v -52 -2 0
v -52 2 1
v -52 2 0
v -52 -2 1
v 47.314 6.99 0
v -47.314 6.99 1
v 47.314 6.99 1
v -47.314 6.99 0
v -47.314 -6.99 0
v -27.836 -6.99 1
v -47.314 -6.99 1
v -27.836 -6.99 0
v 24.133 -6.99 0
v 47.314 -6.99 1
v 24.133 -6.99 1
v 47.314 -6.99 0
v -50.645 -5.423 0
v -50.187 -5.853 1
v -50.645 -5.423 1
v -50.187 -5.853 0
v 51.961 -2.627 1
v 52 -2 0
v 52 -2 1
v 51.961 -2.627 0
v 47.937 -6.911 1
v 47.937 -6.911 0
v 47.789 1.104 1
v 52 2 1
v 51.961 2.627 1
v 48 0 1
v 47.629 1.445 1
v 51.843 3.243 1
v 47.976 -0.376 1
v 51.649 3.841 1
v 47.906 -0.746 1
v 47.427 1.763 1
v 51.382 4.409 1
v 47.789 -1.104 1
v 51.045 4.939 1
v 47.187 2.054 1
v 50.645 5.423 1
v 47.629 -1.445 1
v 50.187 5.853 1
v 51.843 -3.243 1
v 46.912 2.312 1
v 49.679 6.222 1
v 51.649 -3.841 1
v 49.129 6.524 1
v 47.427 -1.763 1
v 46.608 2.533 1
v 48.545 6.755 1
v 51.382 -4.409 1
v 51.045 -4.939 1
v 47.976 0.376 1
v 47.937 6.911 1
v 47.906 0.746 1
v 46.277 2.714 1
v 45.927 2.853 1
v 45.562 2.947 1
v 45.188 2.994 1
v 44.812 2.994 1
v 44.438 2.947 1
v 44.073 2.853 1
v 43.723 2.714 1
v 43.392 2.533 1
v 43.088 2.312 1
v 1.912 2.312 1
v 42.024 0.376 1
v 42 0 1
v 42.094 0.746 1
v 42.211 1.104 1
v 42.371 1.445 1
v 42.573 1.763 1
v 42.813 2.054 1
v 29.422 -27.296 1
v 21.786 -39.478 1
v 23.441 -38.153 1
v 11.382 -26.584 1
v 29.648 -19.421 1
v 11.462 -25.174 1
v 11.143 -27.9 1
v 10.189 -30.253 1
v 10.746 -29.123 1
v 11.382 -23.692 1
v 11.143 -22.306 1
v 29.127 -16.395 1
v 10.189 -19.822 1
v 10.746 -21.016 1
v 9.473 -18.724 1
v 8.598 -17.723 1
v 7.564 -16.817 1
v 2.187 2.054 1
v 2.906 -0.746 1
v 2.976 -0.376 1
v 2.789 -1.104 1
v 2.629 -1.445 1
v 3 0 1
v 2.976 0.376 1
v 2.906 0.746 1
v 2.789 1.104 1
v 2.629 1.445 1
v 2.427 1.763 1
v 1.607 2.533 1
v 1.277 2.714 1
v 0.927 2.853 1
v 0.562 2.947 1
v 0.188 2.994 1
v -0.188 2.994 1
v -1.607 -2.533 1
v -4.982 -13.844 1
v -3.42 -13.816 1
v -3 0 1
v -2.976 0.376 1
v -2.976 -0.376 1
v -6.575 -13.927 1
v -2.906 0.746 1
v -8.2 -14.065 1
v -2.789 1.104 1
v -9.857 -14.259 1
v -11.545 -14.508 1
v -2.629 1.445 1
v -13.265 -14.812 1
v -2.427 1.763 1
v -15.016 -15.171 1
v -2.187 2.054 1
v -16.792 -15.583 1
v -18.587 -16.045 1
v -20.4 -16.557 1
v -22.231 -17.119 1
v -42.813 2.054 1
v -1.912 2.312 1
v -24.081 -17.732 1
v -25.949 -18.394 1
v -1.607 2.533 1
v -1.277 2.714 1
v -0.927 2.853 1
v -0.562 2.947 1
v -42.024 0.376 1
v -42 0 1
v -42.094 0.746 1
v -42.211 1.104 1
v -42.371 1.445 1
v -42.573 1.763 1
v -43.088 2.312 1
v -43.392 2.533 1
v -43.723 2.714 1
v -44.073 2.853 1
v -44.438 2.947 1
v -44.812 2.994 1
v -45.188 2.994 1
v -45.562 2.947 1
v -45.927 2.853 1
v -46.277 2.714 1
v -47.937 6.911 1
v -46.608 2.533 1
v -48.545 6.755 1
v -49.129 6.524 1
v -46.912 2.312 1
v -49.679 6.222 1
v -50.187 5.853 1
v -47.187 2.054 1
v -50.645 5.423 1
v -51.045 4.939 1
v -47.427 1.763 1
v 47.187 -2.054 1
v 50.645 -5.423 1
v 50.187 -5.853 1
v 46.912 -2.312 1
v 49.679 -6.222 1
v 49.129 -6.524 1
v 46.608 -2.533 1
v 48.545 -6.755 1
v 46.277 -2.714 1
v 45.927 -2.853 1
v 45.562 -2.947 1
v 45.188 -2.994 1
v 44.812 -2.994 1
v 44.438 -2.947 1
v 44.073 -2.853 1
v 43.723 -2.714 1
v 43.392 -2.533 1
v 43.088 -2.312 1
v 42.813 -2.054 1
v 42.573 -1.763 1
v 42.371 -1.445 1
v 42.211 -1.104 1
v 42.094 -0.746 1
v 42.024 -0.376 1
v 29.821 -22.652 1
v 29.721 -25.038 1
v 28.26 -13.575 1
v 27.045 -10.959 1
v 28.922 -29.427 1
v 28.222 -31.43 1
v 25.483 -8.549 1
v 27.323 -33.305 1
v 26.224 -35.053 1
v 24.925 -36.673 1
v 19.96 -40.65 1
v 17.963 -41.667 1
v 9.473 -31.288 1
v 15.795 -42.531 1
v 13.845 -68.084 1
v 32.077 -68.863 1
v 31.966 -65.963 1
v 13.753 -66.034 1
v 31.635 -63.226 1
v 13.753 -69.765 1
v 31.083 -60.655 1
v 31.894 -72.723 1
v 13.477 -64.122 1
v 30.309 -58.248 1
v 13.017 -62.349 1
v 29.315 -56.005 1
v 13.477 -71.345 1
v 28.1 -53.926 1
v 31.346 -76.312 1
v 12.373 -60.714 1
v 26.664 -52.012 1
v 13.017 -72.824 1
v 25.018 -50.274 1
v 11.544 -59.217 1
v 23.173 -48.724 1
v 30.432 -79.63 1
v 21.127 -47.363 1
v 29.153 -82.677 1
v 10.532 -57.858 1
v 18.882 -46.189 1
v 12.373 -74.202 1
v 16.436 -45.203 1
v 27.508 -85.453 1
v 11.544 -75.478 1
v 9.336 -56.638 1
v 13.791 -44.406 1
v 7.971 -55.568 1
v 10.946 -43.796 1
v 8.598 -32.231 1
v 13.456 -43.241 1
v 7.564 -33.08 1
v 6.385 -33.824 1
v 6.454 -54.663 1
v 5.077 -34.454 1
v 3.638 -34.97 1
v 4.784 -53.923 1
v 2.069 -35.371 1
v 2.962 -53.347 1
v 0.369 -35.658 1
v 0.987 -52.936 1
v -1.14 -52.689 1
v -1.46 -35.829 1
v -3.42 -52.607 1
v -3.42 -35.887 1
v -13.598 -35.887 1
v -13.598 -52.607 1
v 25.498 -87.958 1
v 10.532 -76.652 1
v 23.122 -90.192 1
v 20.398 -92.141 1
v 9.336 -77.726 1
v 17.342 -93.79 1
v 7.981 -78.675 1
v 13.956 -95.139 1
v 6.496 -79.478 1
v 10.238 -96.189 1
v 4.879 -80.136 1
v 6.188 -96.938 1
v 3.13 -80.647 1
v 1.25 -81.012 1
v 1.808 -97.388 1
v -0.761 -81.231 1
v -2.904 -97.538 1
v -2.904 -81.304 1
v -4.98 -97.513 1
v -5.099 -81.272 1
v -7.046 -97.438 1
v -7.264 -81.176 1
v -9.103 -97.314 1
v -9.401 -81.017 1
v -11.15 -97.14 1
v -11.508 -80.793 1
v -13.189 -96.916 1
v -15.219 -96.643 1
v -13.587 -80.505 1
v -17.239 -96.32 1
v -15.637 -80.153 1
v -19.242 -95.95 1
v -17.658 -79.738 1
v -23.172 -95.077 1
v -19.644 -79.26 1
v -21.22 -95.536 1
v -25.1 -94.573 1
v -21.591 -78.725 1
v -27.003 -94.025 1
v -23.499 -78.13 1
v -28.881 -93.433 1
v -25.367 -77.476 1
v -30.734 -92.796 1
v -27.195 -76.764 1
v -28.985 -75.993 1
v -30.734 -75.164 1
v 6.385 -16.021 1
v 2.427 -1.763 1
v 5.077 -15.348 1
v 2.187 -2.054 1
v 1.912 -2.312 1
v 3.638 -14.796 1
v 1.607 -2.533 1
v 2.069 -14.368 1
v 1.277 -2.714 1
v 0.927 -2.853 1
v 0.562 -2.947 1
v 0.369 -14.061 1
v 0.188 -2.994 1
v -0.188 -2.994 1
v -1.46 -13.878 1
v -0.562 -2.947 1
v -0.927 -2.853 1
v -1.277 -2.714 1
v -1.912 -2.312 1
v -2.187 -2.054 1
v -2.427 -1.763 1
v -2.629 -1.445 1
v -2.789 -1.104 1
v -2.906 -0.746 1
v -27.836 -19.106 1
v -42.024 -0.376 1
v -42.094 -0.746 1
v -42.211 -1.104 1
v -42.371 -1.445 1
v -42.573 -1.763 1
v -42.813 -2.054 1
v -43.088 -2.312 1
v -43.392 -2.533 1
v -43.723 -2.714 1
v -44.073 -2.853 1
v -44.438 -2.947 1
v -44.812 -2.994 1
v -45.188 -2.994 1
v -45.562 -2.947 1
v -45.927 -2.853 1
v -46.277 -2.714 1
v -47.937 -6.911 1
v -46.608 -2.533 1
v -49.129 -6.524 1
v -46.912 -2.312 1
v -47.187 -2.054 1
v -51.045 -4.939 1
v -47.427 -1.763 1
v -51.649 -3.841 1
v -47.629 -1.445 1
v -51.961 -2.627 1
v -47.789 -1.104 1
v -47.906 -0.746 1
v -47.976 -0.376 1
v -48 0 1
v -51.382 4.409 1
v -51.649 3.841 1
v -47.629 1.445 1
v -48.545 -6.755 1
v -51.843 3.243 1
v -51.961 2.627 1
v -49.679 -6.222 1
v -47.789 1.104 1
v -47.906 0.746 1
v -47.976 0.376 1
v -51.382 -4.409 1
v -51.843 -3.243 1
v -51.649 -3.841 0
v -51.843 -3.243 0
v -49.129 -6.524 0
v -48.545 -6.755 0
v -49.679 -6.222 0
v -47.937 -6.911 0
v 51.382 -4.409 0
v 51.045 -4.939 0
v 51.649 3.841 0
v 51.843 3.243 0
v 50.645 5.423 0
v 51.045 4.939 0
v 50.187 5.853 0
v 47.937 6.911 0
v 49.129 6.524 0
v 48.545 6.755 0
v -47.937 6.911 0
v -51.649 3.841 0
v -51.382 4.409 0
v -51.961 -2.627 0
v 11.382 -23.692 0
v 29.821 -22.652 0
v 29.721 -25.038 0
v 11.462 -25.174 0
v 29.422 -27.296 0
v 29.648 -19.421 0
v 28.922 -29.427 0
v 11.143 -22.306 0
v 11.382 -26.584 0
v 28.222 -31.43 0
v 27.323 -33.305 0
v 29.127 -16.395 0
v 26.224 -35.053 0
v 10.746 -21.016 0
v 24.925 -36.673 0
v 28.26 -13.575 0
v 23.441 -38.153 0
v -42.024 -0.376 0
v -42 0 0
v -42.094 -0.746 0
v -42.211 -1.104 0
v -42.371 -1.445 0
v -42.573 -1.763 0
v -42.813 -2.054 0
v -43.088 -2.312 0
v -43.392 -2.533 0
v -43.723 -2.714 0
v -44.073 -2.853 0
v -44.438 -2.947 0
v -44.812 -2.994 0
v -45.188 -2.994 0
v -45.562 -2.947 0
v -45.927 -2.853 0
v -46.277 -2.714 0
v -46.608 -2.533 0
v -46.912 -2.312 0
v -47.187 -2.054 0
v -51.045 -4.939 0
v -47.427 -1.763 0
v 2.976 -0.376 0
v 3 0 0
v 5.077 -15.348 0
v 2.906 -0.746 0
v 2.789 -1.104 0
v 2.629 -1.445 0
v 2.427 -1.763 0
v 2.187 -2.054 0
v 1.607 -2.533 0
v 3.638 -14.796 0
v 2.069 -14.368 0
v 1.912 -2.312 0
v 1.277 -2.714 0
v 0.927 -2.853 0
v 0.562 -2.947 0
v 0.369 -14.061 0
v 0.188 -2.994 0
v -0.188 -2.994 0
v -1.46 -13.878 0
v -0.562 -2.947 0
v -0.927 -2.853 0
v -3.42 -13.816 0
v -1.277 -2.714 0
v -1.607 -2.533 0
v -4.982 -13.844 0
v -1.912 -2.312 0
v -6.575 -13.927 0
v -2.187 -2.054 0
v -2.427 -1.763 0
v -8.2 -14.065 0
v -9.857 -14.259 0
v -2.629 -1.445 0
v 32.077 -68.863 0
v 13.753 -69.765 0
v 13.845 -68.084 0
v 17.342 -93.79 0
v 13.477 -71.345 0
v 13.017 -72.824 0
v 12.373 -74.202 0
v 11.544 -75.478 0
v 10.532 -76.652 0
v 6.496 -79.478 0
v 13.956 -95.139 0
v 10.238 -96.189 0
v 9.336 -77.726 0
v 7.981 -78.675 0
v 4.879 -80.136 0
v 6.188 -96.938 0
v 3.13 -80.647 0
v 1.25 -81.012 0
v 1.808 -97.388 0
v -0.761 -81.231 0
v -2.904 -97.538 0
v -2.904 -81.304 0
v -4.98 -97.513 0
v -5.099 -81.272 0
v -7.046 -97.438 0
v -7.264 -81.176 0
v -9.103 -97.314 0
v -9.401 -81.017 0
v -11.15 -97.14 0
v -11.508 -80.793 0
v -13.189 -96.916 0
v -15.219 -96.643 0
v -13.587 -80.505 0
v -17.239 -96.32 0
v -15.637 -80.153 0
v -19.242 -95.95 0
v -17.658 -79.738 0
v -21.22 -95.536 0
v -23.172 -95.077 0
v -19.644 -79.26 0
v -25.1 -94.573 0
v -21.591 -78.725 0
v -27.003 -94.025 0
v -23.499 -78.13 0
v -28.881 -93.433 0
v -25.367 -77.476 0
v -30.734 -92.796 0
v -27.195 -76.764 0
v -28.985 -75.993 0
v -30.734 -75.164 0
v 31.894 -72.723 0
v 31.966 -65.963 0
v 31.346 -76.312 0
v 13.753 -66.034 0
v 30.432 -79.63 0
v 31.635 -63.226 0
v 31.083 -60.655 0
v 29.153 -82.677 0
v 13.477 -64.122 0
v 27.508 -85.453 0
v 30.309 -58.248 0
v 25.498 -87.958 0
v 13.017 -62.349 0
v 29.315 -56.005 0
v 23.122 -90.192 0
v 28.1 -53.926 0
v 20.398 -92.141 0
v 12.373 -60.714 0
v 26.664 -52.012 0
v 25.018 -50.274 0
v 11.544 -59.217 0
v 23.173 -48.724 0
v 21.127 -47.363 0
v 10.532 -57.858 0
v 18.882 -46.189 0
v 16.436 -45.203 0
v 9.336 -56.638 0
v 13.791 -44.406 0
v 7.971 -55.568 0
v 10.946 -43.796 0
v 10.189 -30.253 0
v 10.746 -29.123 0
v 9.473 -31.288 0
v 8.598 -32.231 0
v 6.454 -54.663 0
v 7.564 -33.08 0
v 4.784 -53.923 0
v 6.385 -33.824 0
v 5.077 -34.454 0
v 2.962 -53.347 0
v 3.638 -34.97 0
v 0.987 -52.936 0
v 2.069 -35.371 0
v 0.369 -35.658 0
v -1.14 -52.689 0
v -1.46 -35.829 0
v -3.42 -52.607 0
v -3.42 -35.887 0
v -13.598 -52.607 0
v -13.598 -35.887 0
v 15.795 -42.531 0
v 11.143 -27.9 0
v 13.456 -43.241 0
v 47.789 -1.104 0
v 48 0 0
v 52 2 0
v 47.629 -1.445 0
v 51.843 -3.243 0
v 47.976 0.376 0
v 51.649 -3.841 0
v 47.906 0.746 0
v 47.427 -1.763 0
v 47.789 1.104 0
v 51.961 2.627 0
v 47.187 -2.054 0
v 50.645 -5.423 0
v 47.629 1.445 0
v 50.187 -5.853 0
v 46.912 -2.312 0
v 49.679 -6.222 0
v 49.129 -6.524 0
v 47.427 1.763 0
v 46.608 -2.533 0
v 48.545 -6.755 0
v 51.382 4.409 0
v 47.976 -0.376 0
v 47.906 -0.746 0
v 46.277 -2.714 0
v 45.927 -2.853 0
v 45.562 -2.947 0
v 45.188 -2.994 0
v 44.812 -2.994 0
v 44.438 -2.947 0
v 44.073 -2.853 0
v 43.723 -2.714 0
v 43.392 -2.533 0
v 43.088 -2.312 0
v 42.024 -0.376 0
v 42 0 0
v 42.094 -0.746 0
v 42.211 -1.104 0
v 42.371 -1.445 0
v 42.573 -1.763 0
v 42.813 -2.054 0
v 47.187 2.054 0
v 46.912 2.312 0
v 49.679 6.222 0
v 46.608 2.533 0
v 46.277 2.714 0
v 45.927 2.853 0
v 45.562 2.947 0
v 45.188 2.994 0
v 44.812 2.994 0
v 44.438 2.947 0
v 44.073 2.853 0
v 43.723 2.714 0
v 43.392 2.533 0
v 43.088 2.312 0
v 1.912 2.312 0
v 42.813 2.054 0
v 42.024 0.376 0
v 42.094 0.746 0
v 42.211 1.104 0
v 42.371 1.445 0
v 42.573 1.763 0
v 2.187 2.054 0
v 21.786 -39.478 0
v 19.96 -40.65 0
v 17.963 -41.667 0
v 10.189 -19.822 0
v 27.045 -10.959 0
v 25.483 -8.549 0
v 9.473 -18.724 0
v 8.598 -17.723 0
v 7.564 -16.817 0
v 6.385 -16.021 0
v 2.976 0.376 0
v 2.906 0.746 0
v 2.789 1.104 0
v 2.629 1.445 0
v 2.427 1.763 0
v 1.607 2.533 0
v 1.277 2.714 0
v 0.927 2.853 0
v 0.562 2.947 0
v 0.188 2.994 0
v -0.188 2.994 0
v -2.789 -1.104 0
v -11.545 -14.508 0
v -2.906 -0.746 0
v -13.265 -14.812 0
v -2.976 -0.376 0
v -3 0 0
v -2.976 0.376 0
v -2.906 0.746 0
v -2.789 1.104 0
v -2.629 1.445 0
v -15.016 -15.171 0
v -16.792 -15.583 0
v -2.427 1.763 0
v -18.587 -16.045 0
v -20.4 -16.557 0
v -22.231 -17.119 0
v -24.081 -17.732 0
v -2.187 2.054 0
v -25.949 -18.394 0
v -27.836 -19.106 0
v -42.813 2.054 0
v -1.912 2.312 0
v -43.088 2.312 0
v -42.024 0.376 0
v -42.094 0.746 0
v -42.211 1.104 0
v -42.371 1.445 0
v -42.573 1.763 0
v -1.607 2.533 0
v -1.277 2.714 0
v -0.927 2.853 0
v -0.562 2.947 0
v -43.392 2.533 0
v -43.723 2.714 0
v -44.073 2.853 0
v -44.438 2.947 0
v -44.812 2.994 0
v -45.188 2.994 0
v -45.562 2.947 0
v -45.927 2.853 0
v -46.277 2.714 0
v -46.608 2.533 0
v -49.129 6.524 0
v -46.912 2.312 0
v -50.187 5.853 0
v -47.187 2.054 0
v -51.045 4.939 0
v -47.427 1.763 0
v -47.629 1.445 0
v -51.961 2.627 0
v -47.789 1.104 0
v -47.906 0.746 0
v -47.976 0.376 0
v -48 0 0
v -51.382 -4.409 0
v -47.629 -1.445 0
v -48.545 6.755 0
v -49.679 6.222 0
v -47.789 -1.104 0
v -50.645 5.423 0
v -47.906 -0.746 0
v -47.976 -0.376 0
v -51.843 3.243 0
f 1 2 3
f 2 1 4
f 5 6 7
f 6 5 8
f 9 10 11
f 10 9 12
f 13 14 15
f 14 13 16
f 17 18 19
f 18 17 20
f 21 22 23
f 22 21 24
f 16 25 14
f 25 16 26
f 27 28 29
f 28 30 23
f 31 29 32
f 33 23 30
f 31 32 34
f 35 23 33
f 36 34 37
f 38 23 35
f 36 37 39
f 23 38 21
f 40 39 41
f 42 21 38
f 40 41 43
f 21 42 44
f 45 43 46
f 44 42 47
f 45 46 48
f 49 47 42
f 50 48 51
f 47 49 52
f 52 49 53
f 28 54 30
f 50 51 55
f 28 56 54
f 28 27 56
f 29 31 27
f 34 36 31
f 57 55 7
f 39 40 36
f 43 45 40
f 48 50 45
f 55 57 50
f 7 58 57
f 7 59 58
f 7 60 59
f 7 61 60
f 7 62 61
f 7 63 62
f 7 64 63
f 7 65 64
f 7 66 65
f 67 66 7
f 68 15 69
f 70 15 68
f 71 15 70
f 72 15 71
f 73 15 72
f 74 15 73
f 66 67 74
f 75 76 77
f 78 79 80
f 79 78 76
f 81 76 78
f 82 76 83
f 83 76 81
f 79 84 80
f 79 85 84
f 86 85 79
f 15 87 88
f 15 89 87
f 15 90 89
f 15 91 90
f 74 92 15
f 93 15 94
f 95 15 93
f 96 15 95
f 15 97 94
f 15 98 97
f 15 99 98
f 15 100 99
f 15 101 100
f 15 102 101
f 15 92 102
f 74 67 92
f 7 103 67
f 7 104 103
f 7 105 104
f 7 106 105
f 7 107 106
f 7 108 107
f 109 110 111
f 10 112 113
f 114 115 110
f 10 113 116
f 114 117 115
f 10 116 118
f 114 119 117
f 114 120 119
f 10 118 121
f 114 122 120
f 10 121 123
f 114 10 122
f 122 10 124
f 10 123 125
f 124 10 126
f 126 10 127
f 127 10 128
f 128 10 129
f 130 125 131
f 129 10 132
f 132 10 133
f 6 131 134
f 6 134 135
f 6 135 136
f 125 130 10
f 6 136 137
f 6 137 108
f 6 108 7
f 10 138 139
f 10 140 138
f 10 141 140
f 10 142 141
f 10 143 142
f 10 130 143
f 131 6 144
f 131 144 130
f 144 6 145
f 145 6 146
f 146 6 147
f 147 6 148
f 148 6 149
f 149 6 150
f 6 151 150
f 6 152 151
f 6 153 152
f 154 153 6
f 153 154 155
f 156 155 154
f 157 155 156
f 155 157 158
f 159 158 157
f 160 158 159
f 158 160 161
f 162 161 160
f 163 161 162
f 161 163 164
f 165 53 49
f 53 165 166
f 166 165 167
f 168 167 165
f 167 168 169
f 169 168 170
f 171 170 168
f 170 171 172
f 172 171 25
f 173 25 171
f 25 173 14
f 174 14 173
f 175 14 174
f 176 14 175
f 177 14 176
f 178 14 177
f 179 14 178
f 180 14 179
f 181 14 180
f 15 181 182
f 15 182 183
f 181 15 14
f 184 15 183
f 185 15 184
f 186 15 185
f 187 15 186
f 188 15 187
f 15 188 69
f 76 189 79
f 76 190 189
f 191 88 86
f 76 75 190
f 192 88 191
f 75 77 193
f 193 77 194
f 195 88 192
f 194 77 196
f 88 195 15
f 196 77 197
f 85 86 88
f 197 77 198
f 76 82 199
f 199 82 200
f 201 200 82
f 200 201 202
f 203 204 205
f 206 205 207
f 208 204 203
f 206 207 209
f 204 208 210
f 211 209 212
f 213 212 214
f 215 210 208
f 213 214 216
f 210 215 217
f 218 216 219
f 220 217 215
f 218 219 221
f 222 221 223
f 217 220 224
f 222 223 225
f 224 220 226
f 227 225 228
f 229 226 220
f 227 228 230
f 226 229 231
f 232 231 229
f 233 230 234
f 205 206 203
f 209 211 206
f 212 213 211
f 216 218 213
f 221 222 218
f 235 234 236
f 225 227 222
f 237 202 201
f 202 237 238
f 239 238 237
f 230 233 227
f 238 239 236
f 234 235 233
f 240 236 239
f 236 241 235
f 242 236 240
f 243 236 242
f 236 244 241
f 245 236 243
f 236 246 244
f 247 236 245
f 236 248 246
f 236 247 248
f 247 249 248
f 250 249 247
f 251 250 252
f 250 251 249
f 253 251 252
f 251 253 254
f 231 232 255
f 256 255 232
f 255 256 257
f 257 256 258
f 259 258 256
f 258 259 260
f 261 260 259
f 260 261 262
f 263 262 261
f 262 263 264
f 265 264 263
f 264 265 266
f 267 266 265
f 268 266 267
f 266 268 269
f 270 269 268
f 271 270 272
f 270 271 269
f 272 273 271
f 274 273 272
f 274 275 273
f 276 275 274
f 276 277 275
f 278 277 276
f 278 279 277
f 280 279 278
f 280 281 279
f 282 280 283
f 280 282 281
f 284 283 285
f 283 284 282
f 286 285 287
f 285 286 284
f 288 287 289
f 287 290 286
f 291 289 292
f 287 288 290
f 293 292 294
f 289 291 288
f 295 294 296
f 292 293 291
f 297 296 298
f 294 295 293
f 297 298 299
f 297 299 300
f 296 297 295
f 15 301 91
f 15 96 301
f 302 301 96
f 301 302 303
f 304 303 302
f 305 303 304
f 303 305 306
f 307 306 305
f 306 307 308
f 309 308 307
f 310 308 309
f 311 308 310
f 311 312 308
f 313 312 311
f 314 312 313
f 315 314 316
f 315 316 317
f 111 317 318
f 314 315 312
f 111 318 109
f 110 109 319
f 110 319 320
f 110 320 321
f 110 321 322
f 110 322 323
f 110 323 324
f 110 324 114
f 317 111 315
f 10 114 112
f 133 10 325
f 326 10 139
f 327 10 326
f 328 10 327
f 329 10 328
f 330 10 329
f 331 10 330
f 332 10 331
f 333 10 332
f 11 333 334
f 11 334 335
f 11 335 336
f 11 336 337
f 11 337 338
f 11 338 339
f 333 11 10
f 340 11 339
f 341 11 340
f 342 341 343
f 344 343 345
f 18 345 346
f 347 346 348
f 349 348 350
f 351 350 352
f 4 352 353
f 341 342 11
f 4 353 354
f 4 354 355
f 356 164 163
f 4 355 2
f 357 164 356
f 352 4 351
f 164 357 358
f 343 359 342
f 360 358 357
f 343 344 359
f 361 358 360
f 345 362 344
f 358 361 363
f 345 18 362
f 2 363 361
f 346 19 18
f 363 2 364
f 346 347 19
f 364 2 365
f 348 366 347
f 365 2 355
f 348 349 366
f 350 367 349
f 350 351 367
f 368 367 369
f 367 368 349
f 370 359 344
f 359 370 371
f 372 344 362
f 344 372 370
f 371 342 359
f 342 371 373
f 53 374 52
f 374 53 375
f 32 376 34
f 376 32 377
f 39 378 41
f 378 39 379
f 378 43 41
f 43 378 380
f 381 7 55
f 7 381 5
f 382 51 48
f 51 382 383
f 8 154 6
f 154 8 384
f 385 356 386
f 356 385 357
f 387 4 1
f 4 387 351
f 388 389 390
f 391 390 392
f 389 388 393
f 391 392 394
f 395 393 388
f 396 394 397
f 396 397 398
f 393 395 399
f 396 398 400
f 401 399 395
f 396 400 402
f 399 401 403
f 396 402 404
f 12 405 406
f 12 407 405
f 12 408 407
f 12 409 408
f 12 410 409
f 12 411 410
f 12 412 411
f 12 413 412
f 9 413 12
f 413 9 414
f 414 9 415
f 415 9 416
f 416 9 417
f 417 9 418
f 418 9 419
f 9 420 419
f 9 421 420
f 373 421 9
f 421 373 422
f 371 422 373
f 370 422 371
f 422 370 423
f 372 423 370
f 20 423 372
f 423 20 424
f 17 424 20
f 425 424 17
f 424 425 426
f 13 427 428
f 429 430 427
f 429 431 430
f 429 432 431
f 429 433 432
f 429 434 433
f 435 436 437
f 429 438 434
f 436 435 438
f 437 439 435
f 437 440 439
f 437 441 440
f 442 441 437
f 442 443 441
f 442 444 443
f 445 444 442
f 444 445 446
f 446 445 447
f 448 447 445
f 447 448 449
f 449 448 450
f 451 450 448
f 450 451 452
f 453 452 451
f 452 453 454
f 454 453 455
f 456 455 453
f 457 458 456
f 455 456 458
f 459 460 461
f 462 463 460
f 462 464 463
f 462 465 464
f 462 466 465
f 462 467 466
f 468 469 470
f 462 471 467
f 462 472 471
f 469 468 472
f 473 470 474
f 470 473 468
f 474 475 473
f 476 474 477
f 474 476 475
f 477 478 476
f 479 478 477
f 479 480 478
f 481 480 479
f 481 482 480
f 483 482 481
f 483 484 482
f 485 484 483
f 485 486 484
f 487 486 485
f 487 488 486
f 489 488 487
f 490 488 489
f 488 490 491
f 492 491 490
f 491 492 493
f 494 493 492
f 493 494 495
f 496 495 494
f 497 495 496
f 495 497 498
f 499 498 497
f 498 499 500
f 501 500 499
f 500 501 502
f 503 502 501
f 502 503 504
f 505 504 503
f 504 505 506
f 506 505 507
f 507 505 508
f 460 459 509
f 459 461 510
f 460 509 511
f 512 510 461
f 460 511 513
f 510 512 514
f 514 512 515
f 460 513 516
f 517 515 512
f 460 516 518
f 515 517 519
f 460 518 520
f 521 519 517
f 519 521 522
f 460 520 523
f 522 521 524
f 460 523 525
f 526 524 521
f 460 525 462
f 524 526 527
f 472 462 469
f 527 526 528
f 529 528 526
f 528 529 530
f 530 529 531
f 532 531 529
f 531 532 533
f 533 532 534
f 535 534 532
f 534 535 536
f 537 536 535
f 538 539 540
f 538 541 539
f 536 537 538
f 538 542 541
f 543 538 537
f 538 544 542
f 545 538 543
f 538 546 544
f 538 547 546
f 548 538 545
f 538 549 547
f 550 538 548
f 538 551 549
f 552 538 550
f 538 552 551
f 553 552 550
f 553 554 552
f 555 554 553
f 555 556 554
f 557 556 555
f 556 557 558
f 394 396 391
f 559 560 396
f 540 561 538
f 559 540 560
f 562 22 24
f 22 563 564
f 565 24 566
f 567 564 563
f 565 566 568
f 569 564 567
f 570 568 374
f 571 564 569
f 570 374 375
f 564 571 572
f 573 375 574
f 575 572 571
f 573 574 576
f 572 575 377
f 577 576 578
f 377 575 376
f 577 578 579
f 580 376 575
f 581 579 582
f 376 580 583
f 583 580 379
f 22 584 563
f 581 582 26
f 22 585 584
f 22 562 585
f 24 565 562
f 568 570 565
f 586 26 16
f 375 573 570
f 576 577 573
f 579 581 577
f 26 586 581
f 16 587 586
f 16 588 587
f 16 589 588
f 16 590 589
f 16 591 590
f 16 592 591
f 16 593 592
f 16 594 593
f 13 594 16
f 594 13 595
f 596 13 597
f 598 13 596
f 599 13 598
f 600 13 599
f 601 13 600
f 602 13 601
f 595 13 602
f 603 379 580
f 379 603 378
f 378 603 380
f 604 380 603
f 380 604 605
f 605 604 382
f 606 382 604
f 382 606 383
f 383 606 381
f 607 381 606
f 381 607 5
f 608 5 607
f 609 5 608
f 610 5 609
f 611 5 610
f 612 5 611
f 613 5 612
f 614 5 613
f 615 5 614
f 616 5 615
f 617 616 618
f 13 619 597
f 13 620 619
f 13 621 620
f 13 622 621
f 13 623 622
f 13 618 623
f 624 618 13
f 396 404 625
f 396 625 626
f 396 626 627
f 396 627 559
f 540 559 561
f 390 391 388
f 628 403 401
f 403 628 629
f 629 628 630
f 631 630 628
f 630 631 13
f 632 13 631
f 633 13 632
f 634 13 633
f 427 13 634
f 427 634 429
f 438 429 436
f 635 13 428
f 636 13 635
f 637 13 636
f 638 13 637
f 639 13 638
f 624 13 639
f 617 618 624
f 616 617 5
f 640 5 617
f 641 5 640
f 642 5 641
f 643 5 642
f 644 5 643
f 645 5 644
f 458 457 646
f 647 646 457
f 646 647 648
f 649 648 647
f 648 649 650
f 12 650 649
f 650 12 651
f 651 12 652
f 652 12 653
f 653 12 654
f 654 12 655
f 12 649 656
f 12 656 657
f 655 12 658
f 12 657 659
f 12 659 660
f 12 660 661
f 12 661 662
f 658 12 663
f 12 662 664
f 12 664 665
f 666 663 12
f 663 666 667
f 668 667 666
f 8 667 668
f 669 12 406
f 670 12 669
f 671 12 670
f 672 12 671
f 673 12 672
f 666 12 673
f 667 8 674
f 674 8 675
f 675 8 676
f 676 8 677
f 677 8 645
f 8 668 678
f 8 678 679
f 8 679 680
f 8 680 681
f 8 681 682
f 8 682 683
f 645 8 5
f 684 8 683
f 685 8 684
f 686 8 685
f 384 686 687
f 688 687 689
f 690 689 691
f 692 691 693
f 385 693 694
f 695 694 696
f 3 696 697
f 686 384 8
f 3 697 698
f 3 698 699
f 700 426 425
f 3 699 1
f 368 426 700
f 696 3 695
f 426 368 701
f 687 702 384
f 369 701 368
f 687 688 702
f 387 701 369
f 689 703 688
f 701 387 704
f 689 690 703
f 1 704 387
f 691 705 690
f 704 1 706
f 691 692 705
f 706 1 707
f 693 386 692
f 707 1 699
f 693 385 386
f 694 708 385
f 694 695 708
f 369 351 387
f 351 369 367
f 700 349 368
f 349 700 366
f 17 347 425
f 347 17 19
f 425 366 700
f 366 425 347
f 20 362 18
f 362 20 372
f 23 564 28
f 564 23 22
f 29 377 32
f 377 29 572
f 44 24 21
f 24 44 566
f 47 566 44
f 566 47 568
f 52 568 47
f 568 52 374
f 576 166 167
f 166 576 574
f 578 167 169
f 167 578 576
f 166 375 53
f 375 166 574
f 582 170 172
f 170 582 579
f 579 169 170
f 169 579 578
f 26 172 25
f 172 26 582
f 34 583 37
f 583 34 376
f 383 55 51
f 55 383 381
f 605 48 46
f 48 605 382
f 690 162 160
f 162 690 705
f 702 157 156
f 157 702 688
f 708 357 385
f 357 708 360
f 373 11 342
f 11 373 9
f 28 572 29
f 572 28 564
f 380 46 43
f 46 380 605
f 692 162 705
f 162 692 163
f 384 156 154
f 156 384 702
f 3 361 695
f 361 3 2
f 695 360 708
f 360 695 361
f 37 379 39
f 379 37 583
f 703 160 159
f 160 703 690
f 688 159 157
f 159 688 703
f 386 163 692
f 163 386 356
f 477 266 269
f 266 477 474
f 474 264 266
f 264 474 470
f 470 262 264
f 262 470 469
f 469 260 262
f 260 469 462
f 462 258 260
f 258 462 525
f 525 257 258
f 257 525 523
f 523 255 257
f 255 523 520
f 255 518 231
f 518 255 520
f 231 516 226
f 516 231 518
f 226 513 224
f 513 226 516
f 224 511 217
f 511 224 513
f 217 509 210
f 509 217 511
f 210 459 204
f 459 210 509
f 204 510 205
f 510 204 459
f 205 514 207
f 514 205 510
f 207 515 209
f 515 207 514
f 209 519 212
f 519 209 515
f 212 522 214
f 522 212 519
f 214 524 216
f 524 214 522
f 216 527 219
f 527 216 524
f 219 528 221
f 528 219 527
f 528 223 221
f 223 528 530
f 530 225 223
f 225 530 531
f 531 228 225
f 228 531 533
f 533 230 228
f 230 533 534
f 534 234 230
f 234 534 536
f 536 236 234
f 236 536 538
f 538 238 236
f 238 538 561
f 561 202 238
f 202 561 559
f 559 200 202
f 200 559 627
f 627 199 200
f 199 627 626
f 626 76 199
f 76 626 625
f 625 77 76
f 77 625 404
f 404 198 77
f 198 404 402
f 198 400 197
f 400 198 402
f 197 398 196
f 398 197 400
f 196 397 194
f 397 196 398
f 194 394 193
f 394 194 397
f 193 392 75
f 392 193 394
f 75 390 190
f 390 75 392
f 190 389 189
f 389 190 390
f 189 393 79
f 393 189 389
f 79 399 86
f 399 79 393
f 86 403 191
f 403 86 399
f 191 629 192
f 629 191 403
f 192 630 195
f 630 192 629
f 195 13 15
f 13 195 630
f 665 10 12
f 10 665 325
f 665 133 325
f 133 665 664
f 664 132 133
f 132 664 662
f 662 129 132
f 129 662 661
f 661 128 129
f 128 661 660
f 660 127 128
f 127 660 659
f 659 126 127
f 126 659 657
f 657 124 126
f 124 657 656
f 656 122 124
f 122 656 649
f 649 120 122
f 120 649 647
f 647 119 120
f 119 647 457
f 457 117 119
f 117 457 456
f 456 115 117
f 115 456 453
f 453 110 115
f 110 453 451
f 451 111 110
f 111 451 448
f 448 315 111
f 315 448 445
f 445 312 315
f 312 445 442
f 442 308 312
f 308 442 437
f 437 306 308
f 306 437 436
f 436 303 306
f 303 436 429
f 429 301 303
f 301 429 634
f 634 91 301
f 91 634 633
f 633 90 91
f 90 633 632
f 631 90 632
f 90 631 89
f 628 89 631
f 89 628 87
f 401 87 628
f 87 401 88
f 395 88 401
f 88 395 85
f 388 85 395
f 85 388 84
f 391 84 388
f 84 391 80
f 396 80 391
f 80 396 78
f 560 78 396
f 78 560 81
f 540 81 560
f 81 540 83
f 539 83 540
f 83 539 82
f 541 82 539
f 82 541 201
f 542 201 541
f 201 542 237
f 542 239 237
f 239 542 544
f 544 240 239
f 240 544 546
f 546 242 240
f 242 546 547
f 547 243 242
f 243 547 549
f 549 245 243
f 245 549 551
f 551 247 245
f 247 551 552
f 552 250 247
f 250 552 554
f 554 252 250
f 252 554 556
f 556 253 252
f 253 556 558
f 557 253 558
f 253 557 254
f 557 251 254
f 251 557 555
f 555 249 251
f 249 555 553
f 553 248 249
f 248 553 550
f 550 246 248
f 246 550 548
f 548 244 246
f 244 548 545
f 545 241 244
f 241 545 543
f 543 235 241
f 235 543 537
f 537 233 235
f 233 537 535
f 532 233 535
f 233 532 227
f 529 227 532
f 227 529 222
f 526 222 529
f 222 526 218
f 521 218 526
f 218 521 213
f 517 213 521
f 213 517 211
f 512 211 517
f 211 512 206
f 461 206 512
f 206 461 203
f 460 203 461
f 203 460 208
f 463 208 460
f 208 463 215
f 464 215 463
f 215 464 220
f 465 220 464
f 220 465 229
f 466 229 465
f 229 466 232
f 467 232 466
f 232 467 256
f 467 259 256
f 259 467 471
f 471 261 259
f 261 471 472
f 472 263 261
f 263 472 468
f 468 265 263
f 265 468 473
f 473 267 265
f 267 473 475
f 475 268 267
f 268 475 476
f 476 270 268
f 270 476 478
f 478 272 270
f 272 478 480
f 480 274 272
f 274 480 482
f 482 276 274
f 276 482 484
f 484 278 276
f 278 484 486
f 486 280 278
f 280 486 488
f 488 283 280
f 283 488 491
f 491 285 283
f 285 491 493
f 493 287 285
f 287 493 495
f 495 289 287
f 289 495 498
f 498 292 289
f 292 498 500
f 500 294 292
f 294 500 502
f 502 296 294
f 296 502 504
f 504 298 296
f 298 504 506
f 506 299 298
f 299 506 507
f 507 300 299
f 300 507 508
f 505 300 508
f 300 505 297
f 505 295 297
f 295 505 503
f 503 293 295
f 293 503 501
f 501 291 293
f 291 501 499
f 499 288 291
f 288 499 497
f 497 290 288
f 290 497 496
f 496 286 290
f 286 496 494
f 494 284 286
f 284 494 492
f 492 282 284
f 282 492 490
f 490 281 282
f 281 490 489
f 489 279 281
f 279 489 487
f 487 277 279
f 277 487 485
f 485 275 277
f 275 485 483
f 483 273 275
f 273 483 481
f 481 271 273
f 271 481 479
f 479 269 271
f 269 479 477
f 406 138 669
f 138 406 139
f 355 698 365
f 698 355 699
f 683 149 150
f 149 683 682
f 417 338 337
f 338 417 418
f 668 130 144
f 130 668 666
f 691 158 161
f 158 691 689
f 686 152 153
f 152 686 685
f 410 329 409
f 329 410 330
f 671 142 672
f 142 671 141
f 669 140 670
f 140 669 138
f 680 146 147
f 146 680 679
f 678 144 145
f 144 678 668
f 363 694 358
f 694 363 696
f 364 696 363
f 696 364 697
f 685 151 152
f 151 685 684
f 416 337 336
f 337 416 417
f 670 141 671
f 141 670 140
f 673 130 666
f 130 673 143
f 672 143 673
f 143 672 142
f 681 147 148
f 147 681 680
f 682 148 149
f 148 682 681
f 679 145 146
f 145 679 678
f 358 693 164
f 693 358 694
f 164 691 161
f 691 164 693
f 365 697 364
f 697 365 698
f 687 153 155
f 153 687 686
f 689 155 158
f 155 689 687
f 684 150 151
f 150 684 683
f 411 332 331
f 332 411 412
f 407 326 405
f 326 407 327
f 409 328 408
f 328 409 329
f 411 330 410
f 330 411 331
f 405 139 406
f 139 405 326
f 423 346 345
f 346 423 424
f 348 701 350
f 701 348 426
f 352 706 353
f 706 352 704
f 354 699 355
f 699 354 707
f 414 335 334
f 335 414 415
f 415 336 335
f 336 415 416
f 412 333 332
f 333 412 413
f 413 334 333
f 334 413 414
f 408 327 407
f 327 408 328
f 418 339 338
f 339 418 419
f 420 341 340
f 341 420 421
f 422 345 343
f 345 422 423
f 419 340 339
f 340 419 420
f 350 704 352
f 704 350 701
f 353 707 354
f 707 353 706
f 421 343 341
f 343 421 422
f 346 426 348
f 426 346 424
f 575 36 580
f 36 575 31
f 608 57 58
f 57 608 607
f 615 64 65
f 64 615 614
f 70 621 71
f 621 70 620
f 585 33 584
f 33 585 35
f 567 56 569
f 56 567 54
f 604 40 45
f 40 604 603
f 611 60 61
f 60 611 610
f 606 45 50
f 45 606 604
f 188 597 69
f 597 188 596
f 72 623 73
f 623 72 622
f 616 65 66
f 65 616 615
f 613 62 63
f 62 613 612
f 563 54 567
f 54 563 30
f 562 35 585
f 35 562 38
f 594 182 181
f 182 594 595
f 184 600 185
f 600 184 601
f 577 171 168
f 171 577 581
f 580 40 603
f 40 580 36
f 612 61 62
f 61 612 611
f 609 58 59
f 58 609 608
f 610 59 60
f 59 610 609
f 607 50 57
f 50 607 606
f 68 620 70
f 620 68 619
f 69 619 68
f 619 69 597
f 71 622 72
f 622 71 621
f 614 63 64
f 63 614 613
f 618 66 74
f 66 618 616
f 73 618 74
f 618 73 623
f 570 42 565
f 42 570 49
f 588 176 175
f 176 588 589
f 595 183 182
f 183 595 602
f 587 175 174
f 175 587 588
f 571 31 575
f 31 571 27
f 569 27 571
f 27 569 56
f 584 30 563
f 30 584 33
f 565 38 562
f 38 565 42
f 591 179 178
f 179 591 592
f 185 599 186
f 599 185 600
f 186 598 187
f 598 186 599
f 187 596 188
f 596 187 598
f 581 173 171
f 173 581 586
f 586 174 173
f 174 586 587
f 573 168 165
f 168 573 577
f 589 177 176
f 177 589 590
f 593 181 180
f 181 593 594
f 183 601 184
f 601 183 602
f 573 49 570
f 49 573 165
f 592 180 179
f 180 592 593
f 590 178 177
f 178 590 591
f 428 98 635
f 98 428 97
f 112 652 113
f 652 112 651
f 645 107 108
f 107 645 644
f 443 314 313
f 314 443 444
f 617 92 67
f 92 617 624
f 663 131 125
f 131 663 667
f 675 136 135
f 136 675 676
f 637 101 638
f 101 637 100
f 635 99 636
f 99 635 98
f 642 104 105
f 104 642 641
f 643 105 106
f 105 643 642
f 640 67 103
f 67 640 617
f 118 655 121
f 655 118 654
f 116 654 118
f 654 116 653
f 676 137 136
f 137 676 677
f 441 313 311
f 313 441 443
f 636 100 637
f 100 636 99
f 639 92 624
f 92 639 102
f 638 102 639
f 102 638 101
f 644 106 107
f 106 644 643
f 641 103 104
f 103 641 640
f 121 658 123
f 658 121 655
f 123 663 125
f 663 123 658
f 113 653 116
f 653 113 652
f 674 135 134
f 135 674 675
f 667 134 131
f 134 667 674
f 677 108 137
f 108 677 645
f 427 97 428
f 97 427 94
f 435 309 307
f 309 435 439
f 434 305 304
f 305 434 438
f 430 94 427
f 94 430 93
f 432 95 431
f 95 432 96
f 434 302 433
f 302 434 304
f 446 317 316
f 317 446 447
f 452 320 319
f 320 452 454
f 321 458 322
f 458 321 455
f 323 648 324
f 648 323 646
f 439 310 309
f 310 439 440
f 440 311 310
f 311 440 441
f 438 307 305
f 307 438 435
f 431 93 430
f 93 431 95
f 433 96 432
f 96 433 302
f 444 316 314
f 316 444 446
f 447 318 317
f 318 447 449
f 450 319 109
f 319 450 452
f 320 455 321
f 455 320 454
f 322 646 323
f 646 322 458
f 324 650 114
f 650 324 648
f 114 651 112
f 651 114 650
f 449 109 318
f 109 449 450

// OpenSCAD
$fn = 50;


difference() {
	union() {
		translate(v = [0, 0, 0]) {
			rotate(a = [0, 0, 0]) {
				hull() {
					translate(v = [-47.0000000000, 2.0000000000, 0]) {
						rotate(a = [0, 0, 0]) {
							translate(v = [0, 0, 0]) {
								rotate(a = [0, 0, 0]) {
									cylinder(h = 1, r = 5);
								}
							}
						}
					}
					translate(v = [47.0000000000, 2.0000000000, 0]) {
						rotate(a = [0, 0, 0]) {
							translate(v = [0, 0, 0]) {
								rotate(a = [0, 0, 0]) {
									cylinder(h = 1, r = 5);
								}
							}
						}
					}
					translate(v = [-47.0000000000, -2.0000000000, 0]) {
						rotate(a = [0, 0, 0]) {
							translate(v = [0, 0, 0]) {
								rotate(a = [0, 0, 0]) {
									cylinder(h = 1, r = 5);
								}
							}
						}
					}
					translate(v = [47.0000000000, -2.0000000000, 0]) {
						rotate(a = [0, 0, 0]) {
							translate(v = [0, 0, 0]) {
								rotate(a = [0, 0, 0]) {
									cylinder(h = 1, r = 5);
								}
							}
						}
					}
				}
			}
		}
		translate(v = [0, 0, 0]) {
			rotate(a = [0, 0, 0]) {
				linear_extrude(height = 1) {
					text(font = "DejaVu Sans Mono:style=Bold", halign = "center", size = 95, text = "3", valign = "top");
				}
			}
		}
	}
	union() {
		translate(v = [-45.0000000000, 0.0000000000, -125.0000000000]) {
			rotate(a = [0, 0, 0]) {
				cylinder(h = 250, r = 3.0000000000);
			}
		}
		translate(v = [45.0000000000, 0.0000000000, -125.0000000000]) {
			rotate(a = [0, 0, 0]) {
				cylinder(h = 250, r = 3.0000000000);
			}
		}
		translate(v = [45.0000000000, 0.0000000000, -125.0000000000]) {
			rotate(a = [0, 0, 0]) {
				cylinder(h = 250, r = 3.0000000000);
			}
		}
		translate(v = [0, 0, -125.0000000000]) {
			rotate(a = [0, 0, 0]) {
				cylinder(h = 250, r = 3.0000000000);
			}
		}
	}
}
